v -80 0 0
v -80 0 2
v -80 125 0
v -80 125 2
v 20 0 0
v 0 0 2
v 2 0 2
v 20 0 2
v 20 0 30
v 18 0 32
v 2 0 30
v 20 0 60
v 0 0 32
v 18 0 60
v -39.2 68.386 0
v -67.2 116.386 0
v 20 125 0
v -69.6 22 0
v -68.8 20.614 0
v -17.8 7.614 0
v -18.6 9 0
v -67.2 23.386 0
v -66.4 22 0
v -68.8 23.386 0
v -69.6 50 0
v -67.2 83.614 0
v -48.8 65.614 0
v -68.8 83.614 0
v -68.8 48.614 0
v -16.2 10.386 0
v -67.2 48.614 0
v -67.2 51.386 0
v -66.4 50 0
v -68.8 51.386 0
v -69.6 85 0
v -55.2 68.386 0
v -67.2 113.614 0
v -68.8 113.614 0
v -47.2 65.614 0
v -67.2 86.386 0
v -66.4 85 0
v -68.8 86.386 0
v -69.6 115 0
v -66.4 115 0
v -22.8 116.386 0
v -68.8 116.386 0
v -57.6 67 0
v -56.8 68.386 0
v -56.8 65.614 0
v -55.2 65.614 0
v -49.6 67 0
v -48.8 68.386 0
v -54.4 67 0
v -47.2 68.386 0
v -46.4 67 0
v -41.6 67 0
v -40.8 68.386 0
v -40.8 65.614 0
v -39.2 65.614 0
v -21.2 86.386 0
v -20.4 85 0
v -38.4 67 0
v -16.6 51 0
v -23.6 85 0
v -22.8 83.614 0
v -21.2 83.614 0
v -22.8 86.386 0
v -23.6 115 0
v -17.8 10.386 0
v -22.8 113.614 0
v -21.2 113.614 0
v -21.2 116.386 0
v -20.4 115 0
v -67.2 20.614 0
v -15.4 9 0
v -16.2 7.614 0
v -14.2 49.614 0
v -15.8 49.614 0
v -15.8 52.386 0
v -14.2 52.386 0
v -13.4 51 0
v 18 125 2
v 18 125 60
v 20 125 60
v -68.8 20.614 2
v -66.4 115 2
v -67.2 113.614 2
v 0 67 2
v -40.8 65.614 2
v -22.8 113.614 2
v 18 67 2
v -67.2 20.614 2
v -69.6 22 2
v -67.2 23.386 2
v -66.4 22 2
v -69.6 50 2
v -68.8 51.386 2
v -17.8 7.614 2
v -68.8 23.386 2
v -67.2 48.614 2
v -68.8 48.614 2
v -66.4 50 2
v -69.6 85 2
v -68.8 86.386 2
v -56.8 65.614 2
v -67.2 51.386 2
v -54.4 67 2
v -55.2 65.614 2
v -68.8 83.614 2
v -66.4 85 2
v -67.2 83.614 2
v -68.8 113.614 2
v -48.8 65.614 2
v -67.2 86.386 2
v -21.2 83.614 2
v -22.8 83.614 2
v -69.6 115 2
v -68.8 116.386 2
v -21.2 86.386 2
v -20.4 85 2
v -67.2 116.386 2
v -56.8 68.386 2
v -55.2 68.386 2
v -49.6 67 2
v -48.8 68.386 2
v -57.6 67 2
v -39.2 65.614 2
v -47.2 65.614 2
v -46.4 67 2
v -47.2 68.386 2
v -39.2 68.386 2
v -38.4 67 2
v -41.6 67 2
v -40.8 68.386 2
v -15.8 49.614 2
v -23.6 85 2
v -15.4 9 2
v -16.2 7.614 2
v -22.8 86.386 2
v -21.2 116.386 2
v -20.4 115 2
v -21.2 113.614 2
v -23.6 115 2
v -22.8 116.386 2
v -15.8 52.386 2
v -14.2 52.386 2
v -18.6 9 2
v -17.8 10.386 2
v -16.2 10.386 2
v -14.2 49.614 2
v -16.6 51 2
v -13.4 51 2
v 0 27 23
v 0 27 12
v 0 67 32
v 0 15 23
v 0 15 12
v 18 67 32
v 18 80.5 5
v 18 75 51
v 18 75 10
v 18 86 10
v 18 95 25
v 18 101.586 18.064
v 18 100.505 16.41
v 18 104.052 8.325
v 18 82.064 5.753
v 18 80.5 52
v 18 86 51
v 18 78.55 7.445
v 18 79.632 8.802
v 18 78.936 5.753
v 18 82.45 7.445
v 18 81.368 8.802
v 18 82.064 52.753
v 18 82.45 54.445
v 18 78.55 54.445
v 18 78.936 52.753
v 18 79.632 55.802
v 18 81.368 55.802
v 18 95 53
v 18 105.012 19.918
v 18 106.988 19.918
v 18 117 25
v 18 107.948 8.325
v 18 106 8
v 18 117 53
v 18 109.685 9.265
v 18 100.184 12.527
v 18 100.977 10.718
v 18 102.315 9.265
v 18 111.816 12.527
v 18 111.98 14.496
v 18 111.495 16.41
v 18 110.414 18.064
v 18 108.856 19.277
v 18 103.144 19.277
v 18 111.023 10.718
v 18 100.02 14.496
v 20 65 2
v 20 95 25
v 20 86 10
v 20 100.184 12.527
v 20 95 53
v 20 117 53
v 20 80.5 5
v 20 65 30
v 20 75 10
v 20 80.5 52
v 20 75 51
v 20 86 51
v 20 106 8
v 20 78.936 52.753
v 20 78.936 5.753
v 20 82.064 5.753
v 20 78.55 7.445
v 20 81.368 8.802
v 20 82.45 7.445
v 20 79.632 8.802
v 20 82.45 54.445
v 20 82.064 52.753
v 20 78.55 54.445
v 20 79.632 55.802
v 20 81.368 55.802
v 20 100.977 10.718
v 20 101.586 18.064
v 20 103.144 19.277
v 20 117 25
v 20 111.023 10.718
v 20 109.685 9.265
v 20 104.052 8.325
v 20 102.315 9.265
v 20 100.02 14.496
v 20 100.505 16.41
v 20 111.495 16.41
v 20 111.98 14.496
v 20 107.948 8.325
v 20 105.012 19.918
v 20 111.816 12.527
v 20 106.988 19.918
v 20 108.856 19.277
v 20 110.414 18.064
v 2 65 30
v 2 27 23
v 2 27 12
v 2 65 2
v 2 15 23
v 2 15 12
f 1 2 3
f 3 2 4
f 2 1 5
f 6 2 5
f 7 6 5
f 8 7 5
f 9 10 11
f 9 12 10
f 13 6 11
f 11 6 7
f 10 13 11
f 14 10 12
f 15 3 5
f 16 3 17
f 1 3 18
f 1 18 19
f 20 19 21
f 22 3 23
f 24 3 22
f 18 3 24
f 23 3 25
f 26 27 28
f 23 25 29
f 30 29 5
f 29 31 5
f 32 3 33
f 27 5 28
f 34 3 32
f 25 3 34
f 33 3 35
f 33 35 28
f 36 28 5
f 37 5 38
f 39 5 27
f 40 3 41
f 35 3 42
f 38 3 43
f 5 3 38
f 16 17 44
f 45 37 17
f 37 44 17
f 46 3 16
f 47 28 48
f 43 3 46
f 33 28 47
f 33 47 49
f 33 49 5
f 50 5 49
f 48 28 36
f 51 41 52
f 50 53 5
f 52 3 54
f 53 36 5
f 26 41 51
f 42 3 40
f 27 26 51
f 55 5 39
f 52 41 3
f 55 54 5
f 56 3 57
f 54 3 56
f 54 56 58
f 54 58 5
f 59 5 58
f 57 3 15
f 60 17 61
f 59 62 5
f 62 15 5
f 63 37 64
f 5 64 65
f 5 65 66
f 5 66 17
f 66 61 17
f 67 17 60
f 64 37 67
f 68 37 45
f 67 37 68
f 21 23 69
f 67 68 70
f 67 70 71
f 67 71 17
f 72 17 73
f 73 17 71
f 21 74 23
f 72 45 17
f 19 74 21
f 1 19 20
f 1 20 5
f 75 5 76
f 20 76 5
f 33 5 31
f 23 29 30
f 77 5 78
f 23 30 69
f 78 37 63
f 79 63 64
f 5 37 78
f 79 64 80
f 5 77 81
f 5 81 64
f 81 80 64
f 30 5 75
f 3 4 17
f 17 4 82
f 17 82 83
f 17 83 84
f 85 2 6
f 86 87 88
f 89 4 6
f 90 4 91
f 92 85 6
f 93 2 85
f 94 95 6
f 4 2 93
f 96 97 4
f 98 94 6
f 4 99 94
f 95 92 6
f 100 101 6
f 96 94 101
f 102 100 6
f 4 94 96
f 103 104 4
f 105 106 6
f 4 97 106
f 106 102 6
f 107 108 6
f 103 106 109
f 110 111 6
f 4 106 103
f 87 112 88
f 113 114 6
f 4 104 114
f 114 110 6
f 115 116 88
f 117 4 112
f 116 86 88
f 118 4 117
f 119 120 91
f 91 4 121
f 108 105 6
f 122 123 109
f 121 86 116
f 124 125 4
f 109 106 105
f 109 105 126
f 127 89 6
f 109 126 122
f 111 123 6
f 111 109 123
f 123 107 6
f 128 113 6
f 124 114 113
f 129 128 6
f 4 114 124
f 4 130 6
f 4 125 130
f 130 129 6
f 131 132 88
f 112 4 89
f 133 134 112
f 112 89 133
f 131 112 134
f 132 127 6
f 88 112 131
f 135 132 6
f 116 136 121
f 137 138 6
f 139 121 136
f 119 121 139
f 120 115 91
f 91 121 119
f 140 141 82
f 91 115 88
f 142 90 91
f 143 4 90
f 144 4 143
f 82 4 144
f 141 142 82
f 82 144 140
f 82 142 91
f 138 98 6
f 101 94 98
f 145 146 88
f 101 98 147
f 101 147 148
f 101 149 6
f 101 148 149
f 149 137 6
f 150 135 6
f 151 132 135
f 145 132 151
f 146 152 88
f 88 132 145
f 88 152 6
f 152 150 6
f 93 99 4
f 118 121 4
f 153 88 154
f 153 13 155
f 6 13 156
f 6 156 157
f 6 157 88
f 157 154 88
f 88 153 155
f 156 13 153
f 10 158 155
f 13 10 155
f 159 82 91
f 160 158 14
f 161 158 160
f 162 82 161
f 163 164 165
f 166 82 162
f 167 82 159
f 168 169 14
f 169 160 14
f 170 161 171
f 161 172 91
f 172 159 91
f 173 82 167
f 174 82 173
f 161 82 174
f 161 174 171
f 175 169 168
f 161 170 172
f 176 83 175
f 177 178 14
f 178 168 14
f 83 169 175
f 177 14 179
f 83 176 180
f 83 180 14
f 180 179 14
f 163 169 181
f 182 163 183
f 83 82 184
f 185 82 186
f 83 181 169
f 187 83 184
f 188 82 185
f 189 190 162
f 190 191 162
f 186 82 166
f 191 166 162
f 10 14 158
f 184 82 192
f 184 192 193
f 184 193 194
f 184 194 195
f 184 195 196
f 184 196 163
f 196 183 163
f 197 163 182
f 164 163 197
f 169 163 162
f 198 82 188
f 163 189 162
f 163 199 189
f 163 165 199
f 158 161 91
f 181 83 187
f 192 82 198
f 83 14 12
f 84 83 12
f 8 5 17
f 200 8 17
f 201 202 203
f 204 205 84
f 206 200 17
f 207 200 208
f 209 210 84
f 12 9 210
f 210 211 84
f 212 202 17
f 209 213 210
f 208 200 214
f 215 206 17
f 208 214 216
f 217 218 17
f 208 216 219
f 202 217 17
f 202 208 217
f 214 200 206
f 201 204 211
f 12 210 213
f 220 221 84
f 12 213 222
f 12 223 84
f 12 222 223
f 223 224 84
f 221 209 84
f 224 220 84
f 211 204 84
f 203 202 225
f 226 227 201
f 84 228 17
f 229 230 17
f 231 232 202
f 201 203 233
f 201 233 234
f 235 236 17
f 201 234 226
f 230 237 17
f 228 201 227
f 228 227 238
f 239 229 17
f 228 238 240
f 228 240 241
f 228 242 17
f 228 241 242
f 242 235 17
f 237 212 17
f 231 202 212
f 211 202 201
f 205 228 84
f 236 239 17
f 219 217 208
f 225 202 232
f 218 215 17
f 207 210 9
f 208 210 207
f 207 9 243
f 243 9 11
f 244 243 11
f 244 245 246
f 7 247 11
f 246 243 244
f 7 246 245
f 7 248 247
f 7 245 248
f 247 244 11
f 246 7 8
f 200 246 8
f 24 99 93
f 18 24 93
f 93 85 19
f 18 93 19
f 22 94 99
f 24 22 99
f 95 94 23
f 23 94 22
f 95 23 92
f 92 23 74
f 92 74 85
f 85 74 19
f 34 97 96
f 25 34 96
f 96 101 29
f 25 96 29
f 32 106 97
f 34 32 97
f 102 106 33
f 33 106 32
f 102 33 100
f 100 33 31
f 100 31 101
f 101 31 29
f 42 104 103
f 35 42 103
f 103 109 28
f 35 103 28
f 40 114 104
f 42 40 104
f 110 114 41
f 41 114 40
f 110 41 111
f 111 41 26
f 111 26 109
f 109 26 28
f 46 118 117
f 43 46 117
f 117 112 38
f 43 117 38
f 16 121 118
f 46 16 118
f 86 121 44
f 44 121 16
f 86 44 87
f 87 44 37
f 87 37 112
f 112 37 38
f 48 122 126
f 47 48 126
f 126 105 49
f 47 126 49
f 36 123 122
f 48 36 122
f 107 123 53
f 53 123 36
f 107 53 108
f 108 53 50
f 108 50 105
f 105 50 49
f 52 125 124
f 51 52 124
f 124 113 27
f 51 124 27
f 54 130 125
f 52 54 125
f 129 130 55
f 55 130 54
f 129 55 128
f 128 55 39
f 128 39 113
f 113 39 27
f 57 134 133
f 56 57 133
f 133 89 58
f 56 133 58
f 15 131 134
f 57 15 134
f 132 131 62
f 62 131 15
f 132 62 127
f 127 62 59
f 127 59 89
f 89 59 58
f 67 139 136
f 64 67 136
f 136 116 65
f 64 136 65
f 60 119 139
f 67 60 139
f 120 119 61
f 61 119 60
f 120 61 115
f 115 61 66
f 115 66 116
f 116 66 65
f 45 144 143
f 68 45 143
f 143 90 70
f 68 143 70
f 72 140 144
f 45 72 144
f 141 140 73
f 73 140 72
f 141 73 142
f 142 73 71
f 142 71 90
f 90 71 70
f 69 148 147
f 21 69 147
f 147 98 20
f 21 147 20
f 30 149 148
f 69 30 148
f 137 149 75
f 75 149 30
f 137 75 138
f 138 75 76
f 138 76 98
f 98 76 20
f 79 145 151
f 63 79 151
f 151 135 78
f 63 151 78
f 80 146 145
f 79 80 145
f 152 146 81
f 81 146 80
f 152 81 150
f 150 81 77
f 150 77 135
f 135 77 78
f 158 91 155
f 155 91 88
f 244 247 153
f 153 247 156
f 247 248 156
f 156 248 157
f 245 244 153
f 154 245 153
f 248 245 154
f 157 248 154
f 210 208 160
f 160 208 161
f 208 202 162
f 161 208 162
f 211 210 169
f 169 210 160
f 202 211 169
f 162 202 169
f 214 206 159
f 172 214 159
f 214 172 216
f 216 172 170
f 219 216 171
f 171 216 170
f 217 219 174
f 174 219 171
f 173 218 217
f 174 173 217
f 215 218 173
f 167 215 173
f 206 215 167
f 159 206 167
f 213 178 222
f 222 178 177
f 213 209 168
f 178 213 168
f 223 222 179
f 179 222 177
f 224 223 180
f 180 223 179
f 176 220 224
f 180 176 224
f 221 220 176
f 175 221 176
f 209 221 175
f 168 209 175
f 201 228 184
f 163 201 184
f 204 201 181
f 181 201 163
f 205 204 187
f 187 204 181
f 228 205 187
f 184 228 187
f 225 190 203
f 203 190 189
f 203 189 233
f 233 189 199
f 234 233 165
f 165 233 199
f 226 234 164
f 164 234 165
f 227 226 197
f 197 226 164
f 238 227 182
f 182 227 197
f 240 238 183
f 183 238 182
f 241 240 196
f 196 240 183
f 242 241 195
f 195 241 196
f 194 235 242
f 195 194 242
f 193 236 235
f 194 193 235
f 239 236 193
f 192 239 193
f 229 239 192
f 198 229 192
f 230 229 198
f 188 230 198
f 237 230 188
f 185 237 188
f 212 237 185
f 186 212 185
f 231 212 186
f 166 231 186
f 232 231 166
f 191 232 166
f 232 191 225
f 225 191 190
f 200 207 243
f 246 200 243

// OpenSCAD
// front
difference() {
	cube([20, 125, 60]);
	// power switch
	translate([-0.5, 95, 25]) cube([21, 22, 28]);
	// power plug
	translate([-0.5, 106, 14]) rotate([0, 90, 0]) cylinder(r = 6, h = 21);
	// D sub 25 pin female connector
	translate([-0.5, 75, 10]) cube([21, 11, 41]);
	translate([-0.5, 80.5, 54]) rotate([0, 90, 0]) cylinder(r = 2, h = 21);
	translate([-0.5, 80.5, 7]) rotate([0, 90, 0]) cylinder(r = 2, h = 21);
	// arduino usb port
	translate([-0.5, 15, 12]) cube([21, 12, 11]);

	translate([2, 0, 0]) cube([20, 65, 30]);
	translate([-2, 0, 32]) cube([20, 125, 40]);
	translate([-2, 67, 0]) cube([20, 125, 32]);
}

difference() {
	translate([-80, 0, 0]) cube([100, 125, 2]);
	// arduino holes
	translate([-17, 9, 0]) cylinder(r = 1.6, h = 21);
	translate([-15, 51, 0]) cylinder(r = 1.6, h = 21);
	translate([-68, 22, 0]) cylinder(r = 1.6, h = 21);
	translate([-68, 50, 0]) cylinder(r = 1.6, h = 21);
	// power converter holes
	translate([-22, 85, 0]) cylinder(r = 1.6, h = 21);
	translate([-22, 115, 0]) cylinder(r = 1.6, h = 21);
	translate([-68, 85, 0]) cylinder(r = 1.6, h = 21);
	translate([-68, 115, 0]) cylinder(r = 1.6, h = 21);
	// power block holes
	translate([-40, 67, 0]) cylinder(r = 1.6, h = 21);
	translate([-48, 67, 0]) cylinder(r = 1.6, h = 21);
	translate([-56, 67, 0]) cylinder(r = 1.6, h = 21);
}
